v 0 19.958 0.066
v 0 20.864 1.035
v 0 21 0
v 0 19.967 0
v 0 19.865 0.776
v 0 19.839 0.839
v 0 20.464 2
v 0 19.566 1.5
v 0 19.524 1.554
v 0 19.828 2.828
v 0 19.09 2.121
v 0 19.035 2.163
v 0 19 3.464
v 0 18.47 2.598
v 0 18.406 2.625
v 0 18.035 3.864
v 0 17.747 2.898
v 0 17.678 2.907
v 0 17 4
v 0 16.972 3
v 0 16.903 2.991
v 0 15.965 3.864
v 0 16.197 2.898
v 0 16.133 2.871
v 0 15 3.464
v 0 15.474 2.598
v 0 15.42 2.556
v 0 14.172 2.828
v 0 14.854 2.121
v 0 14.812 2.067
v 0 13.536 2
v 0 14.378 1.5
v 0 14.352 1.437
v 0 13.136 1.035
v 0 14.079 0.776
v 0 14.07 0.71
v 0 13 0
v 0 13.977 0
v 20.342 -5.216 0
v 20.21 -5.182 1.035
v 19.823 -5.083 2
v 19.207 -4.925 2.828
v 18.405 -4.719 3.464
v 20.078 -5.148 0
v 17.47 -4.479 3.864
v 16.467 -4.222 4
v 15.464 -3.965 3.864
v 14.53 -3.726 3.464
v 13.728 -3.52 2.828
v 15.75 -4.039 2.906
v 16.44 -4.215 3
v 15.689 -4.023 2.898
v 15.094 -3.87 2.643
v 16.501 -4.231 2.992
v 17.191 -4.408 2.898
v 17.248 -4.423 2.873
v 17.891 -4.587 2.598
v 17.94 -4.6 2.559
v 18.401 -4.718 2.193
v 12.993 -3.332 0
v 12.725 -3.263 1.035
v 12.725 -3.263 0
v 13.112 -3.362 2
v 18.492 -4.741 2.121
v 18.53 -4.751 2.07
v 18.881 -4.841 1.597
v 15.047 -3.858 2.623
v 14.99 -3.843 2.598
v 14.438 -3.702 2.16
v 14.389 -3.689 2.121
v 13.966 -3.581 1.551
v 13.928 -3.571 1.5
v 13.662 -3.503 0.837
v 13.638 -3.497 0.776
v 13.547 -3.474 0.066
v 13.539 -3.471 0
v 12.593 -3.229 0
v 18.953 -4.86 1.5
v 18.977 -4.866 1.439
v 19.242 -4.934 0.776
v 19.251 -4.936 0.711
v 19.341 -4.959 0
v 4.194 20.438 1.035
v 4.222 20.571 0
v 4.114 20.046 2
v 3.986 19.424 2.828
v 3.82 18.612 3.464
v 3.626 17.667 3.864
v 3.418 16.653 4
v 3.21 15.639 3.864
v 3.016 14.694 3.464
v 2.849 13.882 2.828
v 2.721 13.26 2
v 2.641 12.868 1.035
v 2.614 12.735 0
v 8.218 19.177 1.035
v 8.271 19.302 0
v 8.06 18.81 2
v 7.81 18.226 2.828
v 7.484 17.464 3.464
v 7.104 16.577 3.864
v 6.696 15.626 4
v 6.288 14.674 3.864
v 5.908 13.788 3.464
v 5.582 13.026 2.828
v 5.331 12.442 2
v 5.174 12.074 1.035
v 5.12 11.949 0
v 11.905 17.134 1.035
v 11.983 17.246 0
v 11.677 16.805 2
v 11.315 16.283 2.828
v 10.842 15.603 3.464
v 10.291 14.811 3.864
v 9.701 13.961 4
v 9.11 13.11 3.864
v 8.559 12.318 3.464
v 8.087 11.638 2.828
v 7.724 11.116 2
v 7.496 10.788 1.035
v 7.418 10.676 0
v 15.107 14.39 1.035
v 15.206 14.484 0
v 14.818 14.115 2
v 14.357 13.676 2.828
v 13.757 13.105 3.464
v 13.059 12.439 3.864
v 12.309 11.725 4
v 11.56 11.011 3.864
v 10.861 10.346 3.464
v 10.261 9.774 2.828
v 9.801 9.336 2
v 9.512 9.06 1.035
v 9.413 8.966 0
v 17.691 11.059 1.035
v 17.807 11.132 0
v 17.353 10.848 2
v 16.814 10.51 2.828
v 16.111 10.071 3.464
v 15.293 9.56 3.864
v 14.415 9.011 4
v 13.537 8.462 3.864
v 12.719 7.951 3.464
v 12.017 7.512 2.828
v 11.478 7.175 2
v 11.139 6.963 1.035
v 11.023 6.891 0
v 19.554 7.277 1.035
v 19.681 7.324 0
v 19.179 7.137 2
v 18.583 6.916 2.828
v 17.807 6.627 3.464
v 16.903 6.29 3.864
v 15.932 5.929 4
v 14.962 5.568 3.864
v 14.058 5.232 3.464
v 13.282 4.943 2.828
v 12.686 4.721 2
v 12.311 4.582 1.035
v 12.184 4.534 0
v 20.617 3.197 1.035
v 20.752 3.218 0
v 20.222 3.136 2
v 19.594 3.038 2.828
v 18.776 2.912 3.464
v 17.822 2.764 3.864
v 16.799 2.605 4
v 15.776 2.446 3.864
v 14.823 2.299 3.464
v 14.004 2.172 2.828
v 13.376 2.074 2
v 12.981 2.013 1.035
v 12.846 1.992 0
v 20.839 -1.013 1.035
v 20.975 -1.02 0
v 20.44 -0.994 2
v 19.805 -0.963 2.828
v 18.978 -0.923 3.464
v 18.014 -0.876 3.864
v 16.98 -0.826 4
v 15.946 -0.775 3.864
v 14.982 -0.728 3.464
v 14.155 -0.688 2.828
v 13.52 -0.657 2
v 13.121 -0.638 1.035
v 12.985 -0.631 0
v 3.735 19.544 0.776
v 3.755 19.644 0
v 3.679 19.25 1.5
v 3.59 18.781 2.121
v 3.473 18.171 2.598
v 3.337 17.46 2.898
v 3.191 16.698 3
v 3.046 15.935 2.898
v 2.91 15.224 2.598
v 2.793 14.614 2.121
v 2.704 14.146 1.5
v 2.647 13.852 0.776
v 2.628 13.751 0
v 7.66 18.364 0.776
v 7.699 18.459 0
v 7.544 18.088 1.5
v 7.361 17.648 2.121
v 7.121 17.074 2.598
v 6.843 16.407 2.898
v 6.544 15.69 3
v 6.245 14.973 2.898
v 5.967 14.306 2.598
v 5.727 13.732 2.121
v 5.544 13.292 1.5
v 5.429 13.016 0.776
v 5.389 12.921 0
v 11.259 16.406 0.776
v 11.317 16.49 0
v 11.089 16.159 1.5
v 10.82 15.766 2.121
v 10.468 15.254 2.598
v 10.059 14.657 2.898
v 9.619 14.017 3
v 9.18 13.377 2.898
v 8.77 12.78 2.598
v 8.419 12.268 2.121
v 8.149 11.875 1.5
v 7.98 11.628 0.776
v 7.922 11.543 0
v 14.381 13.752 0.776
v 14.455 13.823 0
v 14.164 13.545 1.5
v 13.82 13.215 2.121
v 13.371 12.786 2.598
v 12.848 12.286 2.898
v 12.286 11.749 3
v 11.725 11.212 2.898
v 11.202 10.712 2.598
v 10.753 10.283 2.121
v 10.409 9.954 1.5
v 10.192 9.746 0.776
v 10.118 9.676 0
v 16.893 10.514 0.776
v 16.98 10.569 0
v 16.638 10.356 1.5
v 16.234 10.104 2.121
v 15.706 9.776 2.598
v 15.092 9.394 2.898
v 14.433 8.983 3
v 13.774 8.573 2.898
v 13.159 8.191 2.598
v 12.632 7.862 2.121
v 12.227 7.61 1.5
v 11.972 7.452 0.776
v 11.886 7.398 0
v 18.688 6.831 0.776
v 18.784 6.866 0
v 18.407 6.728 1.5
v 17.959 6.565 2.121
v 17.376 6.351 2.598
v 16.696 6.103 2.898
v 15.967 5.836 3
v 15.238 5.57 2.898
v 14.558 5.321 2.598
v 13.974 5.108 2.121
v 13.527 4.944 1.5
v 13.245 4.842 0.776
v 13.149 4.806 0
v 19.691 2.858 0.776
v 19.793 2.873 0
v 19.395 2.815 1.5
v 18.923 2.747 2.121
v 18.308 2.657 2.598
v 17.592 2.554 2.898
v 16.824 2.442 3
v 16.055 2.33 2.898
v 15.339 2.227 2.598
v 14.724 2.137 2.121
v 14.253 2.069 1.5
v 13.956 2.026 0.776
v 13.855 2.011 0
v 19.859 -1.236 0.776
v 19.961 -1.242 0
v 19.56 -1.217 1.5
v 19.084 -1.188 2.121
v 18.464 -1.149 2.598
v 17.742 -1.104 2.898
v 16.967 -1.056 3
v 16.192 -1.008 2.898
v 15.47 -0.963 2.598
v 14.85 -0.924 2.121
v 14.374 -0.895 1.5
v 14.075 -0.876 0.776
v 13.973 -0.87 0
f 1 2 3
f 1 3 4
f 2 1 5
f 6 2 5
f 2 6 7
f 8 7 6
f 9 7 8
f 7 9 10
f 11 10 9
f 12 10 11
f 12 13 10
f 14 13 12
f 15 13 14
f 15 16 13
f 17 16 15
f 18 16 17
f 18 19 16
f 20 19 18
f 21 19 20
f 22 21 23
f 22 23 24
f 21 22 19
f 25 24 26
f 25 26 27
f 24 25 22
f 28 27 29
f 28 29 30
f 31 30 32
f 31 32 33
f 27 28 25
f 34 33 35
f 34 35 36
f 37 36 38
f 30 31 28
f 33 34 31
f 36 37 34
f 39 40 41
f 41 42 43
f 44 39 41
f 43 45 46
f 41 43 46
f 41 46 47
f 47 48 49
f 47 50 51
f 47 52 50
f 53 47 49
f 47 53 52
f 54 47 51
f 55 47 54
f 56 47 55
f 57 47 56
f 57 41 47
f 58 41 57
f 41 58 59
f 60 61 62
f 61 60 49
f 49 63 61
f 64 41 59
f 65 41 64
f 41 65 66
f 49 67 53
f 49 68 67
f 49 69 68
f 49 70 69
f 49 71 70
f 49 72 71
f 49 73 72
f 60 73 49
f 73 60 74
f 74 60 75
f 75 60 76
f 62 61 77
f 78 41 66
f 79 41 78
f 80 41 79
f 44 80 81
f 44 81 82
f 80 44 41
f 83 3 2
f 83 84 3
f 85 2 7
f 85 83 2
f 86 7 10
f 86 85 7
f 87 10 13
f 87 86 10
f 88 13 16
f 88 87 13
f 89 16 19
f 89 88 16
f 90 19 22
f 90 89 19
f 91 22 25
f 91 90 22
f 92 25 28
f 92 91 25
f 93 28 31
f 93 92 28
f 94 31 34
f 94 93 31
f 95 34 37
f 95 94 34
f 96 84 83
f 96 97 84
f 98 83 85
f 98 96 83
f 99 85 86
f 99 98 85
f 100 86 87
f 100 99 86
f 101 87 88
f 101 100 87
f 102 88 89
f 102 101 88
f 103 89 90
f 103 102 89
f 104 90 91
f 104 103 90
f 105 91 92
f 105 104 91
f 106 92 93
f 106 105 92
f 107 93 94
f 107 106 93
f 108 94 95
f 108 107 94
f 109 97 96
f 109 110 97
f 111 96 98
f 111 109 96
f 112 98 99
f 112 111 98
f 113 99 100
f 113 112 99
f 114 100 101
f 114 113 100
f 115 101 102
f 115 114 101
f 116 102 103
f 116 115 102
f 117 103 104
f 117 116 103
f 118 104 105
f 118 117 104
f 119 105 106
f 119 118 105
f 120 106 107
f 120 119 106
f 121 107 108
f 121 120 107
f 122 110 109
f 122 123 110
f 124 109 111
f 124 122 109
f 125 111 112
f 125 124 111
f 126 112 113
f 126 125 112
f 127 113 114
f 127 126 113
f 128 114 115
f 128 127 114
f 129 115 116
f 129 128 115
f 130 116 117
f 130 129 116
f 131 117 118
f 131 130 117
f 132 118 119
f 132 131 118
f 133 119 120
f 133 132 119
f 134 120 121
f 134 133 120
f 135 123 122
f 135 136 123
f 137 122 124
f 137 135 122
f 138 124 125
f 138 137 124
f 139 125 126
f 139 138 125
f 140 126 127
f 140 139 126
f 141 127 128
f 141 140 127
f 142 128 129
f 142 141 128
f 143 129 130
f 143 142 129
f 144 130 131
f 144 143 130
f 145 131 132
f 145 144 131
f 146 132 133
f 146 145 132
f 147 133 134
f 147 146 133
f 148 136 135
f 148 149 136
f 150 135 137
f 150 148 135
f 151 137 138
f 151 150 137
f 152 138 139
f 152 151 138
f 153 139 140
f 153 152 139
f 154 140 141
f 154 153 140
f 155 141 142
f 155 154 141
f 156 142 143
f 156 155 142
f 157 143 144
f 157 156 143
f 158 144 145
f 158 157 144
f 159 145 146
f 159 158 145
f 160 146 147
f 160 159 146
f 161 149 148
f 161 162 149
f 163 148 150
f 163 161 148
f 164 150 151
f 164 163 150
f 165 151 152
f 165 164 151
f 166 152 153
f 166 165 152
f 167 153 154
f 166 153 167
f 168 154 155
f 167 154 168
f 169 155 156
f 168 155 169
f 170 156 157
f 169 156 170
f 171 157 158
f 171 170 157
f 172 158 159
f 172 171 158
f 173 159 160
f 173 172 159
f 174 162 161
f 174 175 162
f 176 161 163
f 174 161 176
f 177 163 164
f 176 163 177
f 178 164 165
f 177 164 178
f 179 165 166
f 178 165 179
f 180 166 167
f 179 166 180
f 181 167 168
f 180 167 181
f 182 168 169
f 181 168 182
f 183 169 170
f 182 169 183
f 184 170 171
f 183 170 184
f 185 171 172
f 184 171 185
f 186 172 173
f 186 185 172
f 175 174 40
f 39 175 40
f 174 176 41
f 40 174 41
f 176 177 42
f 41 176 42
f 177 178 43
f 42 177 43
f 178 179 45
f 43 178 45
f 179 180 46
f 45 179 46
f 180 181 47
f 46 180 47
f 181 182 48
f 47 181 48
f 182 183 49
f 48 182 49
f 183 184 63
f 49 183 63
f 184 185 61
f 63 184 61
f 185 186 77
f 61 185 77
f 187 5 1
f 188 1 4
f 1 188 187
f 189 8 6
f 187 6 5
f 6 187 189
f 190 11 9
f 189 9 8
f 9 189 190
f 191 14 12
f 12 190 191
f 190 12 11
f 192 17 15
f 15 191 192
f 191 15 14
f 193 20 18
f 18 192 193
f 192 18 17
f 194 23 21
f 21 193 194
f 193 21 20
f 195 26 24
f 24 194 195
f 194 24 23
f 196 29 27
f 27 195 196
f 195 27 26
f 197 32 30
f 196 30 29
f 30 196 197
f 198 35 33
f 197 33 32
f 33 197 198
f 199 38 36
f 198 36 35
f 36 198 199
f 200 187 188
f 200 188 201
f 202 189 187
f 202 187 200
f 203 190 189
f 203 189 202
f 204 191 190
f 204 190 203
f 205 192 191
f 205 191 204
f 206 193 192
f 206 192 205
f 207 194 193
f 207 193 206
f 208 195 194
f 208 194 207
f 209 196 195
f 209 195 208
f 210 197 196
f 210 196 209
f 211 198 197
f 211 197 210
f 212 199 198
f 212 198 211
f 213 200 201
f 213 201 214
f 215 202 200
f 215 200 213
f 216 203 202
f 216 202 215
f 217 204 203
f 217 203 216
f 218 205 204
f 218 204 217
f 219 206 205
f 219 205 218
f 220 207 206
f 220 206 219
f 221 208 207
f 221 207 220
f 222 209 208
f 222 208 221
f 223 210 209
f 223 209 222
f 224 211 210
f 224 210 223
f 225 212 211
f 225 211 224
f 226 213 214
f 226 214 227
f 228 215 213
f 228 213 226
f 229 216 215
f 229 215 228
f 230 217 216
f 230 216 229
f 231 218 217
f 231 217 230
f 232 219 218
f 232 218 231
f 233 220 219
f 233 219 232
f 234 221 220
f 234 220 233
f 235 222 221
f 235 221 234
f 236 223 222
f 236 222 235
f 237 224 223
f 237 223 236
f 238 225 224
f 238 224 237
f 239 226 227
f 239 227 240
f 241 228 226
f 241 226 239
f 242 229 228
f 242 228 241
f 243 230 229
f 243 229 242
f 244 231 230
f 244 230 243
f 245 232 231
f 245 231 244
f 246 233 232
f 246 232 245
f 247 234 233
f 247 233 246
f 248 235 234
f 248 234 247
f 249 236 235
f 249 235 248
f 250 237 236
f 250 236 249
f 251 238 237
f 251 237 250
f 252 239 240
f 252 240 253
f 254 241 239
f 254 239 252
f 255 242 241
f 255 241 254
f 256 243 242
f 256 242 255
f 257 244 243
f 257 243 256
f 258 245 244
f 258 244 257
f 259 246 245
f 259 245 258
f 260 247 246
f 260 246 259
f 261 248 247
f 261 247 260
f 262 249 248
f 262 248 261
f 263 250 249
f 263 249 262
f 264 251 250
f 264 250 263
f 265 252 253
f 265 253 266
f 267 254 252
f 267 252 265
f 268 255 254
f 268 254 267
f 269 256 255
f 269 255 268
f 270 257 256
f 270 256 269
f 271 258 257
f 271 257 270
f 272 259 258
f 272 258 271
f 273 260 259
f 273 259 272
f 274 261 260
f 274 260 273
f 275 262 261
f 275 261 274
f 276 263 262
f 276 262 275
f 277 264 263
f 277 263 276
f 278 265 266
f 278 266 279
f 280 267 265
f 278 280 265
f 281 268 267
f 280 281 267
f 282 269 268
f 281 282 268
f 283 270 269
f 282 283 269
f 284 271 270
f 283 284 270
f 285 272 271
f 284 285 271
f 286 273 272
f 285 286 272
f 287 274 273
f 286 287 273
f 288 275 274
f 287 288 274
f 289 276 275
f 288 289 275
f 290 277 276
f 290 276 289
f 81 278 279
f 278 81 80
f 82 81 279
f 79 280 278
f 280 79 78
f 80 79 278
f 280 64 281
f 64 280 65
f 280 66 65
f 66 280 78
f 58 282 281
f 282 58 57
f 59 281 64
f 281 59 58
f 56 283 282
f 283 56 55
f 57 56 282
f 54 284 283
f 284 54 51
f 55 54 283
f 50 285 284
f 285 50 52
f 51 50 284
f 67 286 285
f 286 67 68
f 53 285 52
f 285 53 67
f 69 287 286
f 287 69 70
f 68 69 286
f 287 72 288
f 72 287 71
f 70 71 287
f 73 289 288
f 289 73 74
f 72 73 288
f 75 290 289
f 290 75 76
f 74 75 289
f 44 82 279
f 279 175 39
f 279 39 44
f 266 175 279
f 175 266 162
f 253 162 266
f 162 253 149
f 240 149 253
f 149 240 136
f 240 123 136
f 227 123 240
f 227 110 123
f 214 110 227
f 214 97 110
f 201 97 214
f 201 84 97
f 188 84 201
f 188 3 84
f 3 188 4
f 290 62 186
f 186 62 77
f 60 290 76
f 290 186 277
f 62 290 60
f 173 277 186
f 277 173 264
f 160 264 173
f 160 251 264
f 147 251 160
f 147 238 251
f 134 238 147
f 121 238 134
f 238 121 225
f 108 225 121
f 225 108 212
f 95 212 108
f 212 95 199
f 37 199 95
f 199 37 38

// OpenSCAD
// file: ../build_environments.scad
// build_environments.scad: modules to build level sections
//

module pool(diameter=10.0, wall_height=2.0, step_width=3.0, connections=[])
{
    difference() {
        union() {
        difference() {
            cylinder(h=0.5,r1=diameter+step_width,r2=diameter+step_width,$fn=48);
            translate([0,0,-0.1])
                cylinder(h=0.7,r1=diameter,r2=diameter,$fn=48);
        }
        difference() {
            cylinder(h=wall_height,r1=diameter+step_width+1.0,r2=diameter+step_width+1.0,$fn=48);
            translate([0,0,-0.1])
                cylinder(h=wall_height+0.2,r1=diameter+step_width,r2=diameter+step_width,$fn=48);
        }
        }
    
        for (c = connections)
        {
            rotate([0,90,0]) {
                angle = atan2(c[1],c[0]);
                rotate([-angle,0,0]) {
                    cylinder(h=diameter+5.0,r1=c[2],r2=c[2],$fn=48);
                }
            }
        }
    }
}

module straight(length=10.0, width=2.0, dy1=0.0, dy2=0.0, dz=0.0)
{
    dims = [0, 0, 0, 0, 0, (dz/length)];
    matrix = [
        [ 1, dims[0], dims[1], 0 ],
        [ dims[2], 1, dims[4], 0 ],
        [ dims[5], dims[3], 1, 0 ],
        [ 0, 0, 0, 1 ]
    ];
    multmatrix(matrix)
    difference() {
        translate([dy1,0,0])
        union() {
            rotate([0,90,0]) {
                difference() {
                    cylinder(h=(length-dy1-dy2),r1=width+1.0,r2=width+1.0,$fn=24);
                    translate([0,0,-0.1])
                        cylinder(h=(length-dy1-dy2+0.2),r1=width,r2=width,$fn=24);
                }
                difference() {
                    cylinder(h=1.0,r1=width+2.0,r2=width+2.0,$fn=24);
                    translate([0,0,-0.1])
                        cylinder(h=1.2,r1=width,r2=width,$fn=24);
                }
                translate([0,0,(length-dy1-dy2)-1.0]) {
                    difference() {
                        cylinder(h=1.0,r1=width+2.0,r2=width+2.0,$fn=24);
                        translate([0,0,-0.1])
                            cylinder(h=1.2,r1=width,r2=width,$fn=24);
                    }
                }
            }
        }
        translate([0,0,-(2*width+4.0)/2])
            cube([3*length,3*length,2*width+4.0],center=true);
    }
}

module curve(p0=[0,0], center=[0,0], dir=1, angle=0.0, width=2.0)
{
    radius = sqrt((p0[0]-center[0])*(p0[0]-center[0]) + (p0[1]-center[1])*(p0[1]-center[1]));
    if (dir == 0) {
        difference() {
            rotate([0,0,-90])
            difference() {
                rotate_extrude(angle = angle, convexity = 10, $fn=32)
                    translate([radius, 0, 0])
                        circle(r = width+1.0,$fn=24);
                rotate([0,0,-1.0])
                    rotate_extrude(angle = angle+2.0, convexity = 10, $fn=32)
                        translate([radius, 0, 0])
                            circle(r = width,$fn=24);
            }
            translate([0,0,-(2*width+4.0)/2])
                cube([5*radius,5*radius,2*width+4.0],center=true);
        }
    }
    else {
        difference() {
            rotate([0,0,90])
            difference() {
                rotate_extrude(angle = -angle, convexity = 10, $fn=32)
                    translate([radius, 0, 0])
                        circle(r = width+1.0,$fn=24);
                rotate([0,0,1.0])
                    rotate_extrude(angle = -angle-2.0, convexity = 10, $fn=32)
                        translate([radius, 0, 0])
                            circle(r = width,$fn=24);
            }
            translate([0,0,-(2*width+4.0)/2])
                cube([5*radius,5*radius,2*width+4.0],center=true);
        }
    }

}

// test pool
//pool(diameter=12.0000, wall_height=3.0000, step_width=3.0000, connections=[[0.0000,-26.0000,2.0000], [23.6074,0.0000,2.0000]]);

// test straight, slope
//straight(length=26.0000, width=2.0000, dy1=11.8322, dy2=6.7082, dz=0.0000);
//straight(length=29.1549, width=12.0000, dy1=0.0000, dy2=0.0000, dz=-15.0000);

// test curve
//curve(p0=[23.6074, 0.0000], center=[23.6074, 5.0000], dir=0, angle=60.1011, width=2.0000);
//curve(p0=[33.6426, 12.4219], center=[37.9771, 9.9295], dir=1, angle=120.4627, width=2.0000);
// main file
use <../build_environments.scad>;
curve(p0=[4.2510, 41.8745], center=[6.2883, 58.7520], dir=1, angle=104.3813, width=3.0000);
